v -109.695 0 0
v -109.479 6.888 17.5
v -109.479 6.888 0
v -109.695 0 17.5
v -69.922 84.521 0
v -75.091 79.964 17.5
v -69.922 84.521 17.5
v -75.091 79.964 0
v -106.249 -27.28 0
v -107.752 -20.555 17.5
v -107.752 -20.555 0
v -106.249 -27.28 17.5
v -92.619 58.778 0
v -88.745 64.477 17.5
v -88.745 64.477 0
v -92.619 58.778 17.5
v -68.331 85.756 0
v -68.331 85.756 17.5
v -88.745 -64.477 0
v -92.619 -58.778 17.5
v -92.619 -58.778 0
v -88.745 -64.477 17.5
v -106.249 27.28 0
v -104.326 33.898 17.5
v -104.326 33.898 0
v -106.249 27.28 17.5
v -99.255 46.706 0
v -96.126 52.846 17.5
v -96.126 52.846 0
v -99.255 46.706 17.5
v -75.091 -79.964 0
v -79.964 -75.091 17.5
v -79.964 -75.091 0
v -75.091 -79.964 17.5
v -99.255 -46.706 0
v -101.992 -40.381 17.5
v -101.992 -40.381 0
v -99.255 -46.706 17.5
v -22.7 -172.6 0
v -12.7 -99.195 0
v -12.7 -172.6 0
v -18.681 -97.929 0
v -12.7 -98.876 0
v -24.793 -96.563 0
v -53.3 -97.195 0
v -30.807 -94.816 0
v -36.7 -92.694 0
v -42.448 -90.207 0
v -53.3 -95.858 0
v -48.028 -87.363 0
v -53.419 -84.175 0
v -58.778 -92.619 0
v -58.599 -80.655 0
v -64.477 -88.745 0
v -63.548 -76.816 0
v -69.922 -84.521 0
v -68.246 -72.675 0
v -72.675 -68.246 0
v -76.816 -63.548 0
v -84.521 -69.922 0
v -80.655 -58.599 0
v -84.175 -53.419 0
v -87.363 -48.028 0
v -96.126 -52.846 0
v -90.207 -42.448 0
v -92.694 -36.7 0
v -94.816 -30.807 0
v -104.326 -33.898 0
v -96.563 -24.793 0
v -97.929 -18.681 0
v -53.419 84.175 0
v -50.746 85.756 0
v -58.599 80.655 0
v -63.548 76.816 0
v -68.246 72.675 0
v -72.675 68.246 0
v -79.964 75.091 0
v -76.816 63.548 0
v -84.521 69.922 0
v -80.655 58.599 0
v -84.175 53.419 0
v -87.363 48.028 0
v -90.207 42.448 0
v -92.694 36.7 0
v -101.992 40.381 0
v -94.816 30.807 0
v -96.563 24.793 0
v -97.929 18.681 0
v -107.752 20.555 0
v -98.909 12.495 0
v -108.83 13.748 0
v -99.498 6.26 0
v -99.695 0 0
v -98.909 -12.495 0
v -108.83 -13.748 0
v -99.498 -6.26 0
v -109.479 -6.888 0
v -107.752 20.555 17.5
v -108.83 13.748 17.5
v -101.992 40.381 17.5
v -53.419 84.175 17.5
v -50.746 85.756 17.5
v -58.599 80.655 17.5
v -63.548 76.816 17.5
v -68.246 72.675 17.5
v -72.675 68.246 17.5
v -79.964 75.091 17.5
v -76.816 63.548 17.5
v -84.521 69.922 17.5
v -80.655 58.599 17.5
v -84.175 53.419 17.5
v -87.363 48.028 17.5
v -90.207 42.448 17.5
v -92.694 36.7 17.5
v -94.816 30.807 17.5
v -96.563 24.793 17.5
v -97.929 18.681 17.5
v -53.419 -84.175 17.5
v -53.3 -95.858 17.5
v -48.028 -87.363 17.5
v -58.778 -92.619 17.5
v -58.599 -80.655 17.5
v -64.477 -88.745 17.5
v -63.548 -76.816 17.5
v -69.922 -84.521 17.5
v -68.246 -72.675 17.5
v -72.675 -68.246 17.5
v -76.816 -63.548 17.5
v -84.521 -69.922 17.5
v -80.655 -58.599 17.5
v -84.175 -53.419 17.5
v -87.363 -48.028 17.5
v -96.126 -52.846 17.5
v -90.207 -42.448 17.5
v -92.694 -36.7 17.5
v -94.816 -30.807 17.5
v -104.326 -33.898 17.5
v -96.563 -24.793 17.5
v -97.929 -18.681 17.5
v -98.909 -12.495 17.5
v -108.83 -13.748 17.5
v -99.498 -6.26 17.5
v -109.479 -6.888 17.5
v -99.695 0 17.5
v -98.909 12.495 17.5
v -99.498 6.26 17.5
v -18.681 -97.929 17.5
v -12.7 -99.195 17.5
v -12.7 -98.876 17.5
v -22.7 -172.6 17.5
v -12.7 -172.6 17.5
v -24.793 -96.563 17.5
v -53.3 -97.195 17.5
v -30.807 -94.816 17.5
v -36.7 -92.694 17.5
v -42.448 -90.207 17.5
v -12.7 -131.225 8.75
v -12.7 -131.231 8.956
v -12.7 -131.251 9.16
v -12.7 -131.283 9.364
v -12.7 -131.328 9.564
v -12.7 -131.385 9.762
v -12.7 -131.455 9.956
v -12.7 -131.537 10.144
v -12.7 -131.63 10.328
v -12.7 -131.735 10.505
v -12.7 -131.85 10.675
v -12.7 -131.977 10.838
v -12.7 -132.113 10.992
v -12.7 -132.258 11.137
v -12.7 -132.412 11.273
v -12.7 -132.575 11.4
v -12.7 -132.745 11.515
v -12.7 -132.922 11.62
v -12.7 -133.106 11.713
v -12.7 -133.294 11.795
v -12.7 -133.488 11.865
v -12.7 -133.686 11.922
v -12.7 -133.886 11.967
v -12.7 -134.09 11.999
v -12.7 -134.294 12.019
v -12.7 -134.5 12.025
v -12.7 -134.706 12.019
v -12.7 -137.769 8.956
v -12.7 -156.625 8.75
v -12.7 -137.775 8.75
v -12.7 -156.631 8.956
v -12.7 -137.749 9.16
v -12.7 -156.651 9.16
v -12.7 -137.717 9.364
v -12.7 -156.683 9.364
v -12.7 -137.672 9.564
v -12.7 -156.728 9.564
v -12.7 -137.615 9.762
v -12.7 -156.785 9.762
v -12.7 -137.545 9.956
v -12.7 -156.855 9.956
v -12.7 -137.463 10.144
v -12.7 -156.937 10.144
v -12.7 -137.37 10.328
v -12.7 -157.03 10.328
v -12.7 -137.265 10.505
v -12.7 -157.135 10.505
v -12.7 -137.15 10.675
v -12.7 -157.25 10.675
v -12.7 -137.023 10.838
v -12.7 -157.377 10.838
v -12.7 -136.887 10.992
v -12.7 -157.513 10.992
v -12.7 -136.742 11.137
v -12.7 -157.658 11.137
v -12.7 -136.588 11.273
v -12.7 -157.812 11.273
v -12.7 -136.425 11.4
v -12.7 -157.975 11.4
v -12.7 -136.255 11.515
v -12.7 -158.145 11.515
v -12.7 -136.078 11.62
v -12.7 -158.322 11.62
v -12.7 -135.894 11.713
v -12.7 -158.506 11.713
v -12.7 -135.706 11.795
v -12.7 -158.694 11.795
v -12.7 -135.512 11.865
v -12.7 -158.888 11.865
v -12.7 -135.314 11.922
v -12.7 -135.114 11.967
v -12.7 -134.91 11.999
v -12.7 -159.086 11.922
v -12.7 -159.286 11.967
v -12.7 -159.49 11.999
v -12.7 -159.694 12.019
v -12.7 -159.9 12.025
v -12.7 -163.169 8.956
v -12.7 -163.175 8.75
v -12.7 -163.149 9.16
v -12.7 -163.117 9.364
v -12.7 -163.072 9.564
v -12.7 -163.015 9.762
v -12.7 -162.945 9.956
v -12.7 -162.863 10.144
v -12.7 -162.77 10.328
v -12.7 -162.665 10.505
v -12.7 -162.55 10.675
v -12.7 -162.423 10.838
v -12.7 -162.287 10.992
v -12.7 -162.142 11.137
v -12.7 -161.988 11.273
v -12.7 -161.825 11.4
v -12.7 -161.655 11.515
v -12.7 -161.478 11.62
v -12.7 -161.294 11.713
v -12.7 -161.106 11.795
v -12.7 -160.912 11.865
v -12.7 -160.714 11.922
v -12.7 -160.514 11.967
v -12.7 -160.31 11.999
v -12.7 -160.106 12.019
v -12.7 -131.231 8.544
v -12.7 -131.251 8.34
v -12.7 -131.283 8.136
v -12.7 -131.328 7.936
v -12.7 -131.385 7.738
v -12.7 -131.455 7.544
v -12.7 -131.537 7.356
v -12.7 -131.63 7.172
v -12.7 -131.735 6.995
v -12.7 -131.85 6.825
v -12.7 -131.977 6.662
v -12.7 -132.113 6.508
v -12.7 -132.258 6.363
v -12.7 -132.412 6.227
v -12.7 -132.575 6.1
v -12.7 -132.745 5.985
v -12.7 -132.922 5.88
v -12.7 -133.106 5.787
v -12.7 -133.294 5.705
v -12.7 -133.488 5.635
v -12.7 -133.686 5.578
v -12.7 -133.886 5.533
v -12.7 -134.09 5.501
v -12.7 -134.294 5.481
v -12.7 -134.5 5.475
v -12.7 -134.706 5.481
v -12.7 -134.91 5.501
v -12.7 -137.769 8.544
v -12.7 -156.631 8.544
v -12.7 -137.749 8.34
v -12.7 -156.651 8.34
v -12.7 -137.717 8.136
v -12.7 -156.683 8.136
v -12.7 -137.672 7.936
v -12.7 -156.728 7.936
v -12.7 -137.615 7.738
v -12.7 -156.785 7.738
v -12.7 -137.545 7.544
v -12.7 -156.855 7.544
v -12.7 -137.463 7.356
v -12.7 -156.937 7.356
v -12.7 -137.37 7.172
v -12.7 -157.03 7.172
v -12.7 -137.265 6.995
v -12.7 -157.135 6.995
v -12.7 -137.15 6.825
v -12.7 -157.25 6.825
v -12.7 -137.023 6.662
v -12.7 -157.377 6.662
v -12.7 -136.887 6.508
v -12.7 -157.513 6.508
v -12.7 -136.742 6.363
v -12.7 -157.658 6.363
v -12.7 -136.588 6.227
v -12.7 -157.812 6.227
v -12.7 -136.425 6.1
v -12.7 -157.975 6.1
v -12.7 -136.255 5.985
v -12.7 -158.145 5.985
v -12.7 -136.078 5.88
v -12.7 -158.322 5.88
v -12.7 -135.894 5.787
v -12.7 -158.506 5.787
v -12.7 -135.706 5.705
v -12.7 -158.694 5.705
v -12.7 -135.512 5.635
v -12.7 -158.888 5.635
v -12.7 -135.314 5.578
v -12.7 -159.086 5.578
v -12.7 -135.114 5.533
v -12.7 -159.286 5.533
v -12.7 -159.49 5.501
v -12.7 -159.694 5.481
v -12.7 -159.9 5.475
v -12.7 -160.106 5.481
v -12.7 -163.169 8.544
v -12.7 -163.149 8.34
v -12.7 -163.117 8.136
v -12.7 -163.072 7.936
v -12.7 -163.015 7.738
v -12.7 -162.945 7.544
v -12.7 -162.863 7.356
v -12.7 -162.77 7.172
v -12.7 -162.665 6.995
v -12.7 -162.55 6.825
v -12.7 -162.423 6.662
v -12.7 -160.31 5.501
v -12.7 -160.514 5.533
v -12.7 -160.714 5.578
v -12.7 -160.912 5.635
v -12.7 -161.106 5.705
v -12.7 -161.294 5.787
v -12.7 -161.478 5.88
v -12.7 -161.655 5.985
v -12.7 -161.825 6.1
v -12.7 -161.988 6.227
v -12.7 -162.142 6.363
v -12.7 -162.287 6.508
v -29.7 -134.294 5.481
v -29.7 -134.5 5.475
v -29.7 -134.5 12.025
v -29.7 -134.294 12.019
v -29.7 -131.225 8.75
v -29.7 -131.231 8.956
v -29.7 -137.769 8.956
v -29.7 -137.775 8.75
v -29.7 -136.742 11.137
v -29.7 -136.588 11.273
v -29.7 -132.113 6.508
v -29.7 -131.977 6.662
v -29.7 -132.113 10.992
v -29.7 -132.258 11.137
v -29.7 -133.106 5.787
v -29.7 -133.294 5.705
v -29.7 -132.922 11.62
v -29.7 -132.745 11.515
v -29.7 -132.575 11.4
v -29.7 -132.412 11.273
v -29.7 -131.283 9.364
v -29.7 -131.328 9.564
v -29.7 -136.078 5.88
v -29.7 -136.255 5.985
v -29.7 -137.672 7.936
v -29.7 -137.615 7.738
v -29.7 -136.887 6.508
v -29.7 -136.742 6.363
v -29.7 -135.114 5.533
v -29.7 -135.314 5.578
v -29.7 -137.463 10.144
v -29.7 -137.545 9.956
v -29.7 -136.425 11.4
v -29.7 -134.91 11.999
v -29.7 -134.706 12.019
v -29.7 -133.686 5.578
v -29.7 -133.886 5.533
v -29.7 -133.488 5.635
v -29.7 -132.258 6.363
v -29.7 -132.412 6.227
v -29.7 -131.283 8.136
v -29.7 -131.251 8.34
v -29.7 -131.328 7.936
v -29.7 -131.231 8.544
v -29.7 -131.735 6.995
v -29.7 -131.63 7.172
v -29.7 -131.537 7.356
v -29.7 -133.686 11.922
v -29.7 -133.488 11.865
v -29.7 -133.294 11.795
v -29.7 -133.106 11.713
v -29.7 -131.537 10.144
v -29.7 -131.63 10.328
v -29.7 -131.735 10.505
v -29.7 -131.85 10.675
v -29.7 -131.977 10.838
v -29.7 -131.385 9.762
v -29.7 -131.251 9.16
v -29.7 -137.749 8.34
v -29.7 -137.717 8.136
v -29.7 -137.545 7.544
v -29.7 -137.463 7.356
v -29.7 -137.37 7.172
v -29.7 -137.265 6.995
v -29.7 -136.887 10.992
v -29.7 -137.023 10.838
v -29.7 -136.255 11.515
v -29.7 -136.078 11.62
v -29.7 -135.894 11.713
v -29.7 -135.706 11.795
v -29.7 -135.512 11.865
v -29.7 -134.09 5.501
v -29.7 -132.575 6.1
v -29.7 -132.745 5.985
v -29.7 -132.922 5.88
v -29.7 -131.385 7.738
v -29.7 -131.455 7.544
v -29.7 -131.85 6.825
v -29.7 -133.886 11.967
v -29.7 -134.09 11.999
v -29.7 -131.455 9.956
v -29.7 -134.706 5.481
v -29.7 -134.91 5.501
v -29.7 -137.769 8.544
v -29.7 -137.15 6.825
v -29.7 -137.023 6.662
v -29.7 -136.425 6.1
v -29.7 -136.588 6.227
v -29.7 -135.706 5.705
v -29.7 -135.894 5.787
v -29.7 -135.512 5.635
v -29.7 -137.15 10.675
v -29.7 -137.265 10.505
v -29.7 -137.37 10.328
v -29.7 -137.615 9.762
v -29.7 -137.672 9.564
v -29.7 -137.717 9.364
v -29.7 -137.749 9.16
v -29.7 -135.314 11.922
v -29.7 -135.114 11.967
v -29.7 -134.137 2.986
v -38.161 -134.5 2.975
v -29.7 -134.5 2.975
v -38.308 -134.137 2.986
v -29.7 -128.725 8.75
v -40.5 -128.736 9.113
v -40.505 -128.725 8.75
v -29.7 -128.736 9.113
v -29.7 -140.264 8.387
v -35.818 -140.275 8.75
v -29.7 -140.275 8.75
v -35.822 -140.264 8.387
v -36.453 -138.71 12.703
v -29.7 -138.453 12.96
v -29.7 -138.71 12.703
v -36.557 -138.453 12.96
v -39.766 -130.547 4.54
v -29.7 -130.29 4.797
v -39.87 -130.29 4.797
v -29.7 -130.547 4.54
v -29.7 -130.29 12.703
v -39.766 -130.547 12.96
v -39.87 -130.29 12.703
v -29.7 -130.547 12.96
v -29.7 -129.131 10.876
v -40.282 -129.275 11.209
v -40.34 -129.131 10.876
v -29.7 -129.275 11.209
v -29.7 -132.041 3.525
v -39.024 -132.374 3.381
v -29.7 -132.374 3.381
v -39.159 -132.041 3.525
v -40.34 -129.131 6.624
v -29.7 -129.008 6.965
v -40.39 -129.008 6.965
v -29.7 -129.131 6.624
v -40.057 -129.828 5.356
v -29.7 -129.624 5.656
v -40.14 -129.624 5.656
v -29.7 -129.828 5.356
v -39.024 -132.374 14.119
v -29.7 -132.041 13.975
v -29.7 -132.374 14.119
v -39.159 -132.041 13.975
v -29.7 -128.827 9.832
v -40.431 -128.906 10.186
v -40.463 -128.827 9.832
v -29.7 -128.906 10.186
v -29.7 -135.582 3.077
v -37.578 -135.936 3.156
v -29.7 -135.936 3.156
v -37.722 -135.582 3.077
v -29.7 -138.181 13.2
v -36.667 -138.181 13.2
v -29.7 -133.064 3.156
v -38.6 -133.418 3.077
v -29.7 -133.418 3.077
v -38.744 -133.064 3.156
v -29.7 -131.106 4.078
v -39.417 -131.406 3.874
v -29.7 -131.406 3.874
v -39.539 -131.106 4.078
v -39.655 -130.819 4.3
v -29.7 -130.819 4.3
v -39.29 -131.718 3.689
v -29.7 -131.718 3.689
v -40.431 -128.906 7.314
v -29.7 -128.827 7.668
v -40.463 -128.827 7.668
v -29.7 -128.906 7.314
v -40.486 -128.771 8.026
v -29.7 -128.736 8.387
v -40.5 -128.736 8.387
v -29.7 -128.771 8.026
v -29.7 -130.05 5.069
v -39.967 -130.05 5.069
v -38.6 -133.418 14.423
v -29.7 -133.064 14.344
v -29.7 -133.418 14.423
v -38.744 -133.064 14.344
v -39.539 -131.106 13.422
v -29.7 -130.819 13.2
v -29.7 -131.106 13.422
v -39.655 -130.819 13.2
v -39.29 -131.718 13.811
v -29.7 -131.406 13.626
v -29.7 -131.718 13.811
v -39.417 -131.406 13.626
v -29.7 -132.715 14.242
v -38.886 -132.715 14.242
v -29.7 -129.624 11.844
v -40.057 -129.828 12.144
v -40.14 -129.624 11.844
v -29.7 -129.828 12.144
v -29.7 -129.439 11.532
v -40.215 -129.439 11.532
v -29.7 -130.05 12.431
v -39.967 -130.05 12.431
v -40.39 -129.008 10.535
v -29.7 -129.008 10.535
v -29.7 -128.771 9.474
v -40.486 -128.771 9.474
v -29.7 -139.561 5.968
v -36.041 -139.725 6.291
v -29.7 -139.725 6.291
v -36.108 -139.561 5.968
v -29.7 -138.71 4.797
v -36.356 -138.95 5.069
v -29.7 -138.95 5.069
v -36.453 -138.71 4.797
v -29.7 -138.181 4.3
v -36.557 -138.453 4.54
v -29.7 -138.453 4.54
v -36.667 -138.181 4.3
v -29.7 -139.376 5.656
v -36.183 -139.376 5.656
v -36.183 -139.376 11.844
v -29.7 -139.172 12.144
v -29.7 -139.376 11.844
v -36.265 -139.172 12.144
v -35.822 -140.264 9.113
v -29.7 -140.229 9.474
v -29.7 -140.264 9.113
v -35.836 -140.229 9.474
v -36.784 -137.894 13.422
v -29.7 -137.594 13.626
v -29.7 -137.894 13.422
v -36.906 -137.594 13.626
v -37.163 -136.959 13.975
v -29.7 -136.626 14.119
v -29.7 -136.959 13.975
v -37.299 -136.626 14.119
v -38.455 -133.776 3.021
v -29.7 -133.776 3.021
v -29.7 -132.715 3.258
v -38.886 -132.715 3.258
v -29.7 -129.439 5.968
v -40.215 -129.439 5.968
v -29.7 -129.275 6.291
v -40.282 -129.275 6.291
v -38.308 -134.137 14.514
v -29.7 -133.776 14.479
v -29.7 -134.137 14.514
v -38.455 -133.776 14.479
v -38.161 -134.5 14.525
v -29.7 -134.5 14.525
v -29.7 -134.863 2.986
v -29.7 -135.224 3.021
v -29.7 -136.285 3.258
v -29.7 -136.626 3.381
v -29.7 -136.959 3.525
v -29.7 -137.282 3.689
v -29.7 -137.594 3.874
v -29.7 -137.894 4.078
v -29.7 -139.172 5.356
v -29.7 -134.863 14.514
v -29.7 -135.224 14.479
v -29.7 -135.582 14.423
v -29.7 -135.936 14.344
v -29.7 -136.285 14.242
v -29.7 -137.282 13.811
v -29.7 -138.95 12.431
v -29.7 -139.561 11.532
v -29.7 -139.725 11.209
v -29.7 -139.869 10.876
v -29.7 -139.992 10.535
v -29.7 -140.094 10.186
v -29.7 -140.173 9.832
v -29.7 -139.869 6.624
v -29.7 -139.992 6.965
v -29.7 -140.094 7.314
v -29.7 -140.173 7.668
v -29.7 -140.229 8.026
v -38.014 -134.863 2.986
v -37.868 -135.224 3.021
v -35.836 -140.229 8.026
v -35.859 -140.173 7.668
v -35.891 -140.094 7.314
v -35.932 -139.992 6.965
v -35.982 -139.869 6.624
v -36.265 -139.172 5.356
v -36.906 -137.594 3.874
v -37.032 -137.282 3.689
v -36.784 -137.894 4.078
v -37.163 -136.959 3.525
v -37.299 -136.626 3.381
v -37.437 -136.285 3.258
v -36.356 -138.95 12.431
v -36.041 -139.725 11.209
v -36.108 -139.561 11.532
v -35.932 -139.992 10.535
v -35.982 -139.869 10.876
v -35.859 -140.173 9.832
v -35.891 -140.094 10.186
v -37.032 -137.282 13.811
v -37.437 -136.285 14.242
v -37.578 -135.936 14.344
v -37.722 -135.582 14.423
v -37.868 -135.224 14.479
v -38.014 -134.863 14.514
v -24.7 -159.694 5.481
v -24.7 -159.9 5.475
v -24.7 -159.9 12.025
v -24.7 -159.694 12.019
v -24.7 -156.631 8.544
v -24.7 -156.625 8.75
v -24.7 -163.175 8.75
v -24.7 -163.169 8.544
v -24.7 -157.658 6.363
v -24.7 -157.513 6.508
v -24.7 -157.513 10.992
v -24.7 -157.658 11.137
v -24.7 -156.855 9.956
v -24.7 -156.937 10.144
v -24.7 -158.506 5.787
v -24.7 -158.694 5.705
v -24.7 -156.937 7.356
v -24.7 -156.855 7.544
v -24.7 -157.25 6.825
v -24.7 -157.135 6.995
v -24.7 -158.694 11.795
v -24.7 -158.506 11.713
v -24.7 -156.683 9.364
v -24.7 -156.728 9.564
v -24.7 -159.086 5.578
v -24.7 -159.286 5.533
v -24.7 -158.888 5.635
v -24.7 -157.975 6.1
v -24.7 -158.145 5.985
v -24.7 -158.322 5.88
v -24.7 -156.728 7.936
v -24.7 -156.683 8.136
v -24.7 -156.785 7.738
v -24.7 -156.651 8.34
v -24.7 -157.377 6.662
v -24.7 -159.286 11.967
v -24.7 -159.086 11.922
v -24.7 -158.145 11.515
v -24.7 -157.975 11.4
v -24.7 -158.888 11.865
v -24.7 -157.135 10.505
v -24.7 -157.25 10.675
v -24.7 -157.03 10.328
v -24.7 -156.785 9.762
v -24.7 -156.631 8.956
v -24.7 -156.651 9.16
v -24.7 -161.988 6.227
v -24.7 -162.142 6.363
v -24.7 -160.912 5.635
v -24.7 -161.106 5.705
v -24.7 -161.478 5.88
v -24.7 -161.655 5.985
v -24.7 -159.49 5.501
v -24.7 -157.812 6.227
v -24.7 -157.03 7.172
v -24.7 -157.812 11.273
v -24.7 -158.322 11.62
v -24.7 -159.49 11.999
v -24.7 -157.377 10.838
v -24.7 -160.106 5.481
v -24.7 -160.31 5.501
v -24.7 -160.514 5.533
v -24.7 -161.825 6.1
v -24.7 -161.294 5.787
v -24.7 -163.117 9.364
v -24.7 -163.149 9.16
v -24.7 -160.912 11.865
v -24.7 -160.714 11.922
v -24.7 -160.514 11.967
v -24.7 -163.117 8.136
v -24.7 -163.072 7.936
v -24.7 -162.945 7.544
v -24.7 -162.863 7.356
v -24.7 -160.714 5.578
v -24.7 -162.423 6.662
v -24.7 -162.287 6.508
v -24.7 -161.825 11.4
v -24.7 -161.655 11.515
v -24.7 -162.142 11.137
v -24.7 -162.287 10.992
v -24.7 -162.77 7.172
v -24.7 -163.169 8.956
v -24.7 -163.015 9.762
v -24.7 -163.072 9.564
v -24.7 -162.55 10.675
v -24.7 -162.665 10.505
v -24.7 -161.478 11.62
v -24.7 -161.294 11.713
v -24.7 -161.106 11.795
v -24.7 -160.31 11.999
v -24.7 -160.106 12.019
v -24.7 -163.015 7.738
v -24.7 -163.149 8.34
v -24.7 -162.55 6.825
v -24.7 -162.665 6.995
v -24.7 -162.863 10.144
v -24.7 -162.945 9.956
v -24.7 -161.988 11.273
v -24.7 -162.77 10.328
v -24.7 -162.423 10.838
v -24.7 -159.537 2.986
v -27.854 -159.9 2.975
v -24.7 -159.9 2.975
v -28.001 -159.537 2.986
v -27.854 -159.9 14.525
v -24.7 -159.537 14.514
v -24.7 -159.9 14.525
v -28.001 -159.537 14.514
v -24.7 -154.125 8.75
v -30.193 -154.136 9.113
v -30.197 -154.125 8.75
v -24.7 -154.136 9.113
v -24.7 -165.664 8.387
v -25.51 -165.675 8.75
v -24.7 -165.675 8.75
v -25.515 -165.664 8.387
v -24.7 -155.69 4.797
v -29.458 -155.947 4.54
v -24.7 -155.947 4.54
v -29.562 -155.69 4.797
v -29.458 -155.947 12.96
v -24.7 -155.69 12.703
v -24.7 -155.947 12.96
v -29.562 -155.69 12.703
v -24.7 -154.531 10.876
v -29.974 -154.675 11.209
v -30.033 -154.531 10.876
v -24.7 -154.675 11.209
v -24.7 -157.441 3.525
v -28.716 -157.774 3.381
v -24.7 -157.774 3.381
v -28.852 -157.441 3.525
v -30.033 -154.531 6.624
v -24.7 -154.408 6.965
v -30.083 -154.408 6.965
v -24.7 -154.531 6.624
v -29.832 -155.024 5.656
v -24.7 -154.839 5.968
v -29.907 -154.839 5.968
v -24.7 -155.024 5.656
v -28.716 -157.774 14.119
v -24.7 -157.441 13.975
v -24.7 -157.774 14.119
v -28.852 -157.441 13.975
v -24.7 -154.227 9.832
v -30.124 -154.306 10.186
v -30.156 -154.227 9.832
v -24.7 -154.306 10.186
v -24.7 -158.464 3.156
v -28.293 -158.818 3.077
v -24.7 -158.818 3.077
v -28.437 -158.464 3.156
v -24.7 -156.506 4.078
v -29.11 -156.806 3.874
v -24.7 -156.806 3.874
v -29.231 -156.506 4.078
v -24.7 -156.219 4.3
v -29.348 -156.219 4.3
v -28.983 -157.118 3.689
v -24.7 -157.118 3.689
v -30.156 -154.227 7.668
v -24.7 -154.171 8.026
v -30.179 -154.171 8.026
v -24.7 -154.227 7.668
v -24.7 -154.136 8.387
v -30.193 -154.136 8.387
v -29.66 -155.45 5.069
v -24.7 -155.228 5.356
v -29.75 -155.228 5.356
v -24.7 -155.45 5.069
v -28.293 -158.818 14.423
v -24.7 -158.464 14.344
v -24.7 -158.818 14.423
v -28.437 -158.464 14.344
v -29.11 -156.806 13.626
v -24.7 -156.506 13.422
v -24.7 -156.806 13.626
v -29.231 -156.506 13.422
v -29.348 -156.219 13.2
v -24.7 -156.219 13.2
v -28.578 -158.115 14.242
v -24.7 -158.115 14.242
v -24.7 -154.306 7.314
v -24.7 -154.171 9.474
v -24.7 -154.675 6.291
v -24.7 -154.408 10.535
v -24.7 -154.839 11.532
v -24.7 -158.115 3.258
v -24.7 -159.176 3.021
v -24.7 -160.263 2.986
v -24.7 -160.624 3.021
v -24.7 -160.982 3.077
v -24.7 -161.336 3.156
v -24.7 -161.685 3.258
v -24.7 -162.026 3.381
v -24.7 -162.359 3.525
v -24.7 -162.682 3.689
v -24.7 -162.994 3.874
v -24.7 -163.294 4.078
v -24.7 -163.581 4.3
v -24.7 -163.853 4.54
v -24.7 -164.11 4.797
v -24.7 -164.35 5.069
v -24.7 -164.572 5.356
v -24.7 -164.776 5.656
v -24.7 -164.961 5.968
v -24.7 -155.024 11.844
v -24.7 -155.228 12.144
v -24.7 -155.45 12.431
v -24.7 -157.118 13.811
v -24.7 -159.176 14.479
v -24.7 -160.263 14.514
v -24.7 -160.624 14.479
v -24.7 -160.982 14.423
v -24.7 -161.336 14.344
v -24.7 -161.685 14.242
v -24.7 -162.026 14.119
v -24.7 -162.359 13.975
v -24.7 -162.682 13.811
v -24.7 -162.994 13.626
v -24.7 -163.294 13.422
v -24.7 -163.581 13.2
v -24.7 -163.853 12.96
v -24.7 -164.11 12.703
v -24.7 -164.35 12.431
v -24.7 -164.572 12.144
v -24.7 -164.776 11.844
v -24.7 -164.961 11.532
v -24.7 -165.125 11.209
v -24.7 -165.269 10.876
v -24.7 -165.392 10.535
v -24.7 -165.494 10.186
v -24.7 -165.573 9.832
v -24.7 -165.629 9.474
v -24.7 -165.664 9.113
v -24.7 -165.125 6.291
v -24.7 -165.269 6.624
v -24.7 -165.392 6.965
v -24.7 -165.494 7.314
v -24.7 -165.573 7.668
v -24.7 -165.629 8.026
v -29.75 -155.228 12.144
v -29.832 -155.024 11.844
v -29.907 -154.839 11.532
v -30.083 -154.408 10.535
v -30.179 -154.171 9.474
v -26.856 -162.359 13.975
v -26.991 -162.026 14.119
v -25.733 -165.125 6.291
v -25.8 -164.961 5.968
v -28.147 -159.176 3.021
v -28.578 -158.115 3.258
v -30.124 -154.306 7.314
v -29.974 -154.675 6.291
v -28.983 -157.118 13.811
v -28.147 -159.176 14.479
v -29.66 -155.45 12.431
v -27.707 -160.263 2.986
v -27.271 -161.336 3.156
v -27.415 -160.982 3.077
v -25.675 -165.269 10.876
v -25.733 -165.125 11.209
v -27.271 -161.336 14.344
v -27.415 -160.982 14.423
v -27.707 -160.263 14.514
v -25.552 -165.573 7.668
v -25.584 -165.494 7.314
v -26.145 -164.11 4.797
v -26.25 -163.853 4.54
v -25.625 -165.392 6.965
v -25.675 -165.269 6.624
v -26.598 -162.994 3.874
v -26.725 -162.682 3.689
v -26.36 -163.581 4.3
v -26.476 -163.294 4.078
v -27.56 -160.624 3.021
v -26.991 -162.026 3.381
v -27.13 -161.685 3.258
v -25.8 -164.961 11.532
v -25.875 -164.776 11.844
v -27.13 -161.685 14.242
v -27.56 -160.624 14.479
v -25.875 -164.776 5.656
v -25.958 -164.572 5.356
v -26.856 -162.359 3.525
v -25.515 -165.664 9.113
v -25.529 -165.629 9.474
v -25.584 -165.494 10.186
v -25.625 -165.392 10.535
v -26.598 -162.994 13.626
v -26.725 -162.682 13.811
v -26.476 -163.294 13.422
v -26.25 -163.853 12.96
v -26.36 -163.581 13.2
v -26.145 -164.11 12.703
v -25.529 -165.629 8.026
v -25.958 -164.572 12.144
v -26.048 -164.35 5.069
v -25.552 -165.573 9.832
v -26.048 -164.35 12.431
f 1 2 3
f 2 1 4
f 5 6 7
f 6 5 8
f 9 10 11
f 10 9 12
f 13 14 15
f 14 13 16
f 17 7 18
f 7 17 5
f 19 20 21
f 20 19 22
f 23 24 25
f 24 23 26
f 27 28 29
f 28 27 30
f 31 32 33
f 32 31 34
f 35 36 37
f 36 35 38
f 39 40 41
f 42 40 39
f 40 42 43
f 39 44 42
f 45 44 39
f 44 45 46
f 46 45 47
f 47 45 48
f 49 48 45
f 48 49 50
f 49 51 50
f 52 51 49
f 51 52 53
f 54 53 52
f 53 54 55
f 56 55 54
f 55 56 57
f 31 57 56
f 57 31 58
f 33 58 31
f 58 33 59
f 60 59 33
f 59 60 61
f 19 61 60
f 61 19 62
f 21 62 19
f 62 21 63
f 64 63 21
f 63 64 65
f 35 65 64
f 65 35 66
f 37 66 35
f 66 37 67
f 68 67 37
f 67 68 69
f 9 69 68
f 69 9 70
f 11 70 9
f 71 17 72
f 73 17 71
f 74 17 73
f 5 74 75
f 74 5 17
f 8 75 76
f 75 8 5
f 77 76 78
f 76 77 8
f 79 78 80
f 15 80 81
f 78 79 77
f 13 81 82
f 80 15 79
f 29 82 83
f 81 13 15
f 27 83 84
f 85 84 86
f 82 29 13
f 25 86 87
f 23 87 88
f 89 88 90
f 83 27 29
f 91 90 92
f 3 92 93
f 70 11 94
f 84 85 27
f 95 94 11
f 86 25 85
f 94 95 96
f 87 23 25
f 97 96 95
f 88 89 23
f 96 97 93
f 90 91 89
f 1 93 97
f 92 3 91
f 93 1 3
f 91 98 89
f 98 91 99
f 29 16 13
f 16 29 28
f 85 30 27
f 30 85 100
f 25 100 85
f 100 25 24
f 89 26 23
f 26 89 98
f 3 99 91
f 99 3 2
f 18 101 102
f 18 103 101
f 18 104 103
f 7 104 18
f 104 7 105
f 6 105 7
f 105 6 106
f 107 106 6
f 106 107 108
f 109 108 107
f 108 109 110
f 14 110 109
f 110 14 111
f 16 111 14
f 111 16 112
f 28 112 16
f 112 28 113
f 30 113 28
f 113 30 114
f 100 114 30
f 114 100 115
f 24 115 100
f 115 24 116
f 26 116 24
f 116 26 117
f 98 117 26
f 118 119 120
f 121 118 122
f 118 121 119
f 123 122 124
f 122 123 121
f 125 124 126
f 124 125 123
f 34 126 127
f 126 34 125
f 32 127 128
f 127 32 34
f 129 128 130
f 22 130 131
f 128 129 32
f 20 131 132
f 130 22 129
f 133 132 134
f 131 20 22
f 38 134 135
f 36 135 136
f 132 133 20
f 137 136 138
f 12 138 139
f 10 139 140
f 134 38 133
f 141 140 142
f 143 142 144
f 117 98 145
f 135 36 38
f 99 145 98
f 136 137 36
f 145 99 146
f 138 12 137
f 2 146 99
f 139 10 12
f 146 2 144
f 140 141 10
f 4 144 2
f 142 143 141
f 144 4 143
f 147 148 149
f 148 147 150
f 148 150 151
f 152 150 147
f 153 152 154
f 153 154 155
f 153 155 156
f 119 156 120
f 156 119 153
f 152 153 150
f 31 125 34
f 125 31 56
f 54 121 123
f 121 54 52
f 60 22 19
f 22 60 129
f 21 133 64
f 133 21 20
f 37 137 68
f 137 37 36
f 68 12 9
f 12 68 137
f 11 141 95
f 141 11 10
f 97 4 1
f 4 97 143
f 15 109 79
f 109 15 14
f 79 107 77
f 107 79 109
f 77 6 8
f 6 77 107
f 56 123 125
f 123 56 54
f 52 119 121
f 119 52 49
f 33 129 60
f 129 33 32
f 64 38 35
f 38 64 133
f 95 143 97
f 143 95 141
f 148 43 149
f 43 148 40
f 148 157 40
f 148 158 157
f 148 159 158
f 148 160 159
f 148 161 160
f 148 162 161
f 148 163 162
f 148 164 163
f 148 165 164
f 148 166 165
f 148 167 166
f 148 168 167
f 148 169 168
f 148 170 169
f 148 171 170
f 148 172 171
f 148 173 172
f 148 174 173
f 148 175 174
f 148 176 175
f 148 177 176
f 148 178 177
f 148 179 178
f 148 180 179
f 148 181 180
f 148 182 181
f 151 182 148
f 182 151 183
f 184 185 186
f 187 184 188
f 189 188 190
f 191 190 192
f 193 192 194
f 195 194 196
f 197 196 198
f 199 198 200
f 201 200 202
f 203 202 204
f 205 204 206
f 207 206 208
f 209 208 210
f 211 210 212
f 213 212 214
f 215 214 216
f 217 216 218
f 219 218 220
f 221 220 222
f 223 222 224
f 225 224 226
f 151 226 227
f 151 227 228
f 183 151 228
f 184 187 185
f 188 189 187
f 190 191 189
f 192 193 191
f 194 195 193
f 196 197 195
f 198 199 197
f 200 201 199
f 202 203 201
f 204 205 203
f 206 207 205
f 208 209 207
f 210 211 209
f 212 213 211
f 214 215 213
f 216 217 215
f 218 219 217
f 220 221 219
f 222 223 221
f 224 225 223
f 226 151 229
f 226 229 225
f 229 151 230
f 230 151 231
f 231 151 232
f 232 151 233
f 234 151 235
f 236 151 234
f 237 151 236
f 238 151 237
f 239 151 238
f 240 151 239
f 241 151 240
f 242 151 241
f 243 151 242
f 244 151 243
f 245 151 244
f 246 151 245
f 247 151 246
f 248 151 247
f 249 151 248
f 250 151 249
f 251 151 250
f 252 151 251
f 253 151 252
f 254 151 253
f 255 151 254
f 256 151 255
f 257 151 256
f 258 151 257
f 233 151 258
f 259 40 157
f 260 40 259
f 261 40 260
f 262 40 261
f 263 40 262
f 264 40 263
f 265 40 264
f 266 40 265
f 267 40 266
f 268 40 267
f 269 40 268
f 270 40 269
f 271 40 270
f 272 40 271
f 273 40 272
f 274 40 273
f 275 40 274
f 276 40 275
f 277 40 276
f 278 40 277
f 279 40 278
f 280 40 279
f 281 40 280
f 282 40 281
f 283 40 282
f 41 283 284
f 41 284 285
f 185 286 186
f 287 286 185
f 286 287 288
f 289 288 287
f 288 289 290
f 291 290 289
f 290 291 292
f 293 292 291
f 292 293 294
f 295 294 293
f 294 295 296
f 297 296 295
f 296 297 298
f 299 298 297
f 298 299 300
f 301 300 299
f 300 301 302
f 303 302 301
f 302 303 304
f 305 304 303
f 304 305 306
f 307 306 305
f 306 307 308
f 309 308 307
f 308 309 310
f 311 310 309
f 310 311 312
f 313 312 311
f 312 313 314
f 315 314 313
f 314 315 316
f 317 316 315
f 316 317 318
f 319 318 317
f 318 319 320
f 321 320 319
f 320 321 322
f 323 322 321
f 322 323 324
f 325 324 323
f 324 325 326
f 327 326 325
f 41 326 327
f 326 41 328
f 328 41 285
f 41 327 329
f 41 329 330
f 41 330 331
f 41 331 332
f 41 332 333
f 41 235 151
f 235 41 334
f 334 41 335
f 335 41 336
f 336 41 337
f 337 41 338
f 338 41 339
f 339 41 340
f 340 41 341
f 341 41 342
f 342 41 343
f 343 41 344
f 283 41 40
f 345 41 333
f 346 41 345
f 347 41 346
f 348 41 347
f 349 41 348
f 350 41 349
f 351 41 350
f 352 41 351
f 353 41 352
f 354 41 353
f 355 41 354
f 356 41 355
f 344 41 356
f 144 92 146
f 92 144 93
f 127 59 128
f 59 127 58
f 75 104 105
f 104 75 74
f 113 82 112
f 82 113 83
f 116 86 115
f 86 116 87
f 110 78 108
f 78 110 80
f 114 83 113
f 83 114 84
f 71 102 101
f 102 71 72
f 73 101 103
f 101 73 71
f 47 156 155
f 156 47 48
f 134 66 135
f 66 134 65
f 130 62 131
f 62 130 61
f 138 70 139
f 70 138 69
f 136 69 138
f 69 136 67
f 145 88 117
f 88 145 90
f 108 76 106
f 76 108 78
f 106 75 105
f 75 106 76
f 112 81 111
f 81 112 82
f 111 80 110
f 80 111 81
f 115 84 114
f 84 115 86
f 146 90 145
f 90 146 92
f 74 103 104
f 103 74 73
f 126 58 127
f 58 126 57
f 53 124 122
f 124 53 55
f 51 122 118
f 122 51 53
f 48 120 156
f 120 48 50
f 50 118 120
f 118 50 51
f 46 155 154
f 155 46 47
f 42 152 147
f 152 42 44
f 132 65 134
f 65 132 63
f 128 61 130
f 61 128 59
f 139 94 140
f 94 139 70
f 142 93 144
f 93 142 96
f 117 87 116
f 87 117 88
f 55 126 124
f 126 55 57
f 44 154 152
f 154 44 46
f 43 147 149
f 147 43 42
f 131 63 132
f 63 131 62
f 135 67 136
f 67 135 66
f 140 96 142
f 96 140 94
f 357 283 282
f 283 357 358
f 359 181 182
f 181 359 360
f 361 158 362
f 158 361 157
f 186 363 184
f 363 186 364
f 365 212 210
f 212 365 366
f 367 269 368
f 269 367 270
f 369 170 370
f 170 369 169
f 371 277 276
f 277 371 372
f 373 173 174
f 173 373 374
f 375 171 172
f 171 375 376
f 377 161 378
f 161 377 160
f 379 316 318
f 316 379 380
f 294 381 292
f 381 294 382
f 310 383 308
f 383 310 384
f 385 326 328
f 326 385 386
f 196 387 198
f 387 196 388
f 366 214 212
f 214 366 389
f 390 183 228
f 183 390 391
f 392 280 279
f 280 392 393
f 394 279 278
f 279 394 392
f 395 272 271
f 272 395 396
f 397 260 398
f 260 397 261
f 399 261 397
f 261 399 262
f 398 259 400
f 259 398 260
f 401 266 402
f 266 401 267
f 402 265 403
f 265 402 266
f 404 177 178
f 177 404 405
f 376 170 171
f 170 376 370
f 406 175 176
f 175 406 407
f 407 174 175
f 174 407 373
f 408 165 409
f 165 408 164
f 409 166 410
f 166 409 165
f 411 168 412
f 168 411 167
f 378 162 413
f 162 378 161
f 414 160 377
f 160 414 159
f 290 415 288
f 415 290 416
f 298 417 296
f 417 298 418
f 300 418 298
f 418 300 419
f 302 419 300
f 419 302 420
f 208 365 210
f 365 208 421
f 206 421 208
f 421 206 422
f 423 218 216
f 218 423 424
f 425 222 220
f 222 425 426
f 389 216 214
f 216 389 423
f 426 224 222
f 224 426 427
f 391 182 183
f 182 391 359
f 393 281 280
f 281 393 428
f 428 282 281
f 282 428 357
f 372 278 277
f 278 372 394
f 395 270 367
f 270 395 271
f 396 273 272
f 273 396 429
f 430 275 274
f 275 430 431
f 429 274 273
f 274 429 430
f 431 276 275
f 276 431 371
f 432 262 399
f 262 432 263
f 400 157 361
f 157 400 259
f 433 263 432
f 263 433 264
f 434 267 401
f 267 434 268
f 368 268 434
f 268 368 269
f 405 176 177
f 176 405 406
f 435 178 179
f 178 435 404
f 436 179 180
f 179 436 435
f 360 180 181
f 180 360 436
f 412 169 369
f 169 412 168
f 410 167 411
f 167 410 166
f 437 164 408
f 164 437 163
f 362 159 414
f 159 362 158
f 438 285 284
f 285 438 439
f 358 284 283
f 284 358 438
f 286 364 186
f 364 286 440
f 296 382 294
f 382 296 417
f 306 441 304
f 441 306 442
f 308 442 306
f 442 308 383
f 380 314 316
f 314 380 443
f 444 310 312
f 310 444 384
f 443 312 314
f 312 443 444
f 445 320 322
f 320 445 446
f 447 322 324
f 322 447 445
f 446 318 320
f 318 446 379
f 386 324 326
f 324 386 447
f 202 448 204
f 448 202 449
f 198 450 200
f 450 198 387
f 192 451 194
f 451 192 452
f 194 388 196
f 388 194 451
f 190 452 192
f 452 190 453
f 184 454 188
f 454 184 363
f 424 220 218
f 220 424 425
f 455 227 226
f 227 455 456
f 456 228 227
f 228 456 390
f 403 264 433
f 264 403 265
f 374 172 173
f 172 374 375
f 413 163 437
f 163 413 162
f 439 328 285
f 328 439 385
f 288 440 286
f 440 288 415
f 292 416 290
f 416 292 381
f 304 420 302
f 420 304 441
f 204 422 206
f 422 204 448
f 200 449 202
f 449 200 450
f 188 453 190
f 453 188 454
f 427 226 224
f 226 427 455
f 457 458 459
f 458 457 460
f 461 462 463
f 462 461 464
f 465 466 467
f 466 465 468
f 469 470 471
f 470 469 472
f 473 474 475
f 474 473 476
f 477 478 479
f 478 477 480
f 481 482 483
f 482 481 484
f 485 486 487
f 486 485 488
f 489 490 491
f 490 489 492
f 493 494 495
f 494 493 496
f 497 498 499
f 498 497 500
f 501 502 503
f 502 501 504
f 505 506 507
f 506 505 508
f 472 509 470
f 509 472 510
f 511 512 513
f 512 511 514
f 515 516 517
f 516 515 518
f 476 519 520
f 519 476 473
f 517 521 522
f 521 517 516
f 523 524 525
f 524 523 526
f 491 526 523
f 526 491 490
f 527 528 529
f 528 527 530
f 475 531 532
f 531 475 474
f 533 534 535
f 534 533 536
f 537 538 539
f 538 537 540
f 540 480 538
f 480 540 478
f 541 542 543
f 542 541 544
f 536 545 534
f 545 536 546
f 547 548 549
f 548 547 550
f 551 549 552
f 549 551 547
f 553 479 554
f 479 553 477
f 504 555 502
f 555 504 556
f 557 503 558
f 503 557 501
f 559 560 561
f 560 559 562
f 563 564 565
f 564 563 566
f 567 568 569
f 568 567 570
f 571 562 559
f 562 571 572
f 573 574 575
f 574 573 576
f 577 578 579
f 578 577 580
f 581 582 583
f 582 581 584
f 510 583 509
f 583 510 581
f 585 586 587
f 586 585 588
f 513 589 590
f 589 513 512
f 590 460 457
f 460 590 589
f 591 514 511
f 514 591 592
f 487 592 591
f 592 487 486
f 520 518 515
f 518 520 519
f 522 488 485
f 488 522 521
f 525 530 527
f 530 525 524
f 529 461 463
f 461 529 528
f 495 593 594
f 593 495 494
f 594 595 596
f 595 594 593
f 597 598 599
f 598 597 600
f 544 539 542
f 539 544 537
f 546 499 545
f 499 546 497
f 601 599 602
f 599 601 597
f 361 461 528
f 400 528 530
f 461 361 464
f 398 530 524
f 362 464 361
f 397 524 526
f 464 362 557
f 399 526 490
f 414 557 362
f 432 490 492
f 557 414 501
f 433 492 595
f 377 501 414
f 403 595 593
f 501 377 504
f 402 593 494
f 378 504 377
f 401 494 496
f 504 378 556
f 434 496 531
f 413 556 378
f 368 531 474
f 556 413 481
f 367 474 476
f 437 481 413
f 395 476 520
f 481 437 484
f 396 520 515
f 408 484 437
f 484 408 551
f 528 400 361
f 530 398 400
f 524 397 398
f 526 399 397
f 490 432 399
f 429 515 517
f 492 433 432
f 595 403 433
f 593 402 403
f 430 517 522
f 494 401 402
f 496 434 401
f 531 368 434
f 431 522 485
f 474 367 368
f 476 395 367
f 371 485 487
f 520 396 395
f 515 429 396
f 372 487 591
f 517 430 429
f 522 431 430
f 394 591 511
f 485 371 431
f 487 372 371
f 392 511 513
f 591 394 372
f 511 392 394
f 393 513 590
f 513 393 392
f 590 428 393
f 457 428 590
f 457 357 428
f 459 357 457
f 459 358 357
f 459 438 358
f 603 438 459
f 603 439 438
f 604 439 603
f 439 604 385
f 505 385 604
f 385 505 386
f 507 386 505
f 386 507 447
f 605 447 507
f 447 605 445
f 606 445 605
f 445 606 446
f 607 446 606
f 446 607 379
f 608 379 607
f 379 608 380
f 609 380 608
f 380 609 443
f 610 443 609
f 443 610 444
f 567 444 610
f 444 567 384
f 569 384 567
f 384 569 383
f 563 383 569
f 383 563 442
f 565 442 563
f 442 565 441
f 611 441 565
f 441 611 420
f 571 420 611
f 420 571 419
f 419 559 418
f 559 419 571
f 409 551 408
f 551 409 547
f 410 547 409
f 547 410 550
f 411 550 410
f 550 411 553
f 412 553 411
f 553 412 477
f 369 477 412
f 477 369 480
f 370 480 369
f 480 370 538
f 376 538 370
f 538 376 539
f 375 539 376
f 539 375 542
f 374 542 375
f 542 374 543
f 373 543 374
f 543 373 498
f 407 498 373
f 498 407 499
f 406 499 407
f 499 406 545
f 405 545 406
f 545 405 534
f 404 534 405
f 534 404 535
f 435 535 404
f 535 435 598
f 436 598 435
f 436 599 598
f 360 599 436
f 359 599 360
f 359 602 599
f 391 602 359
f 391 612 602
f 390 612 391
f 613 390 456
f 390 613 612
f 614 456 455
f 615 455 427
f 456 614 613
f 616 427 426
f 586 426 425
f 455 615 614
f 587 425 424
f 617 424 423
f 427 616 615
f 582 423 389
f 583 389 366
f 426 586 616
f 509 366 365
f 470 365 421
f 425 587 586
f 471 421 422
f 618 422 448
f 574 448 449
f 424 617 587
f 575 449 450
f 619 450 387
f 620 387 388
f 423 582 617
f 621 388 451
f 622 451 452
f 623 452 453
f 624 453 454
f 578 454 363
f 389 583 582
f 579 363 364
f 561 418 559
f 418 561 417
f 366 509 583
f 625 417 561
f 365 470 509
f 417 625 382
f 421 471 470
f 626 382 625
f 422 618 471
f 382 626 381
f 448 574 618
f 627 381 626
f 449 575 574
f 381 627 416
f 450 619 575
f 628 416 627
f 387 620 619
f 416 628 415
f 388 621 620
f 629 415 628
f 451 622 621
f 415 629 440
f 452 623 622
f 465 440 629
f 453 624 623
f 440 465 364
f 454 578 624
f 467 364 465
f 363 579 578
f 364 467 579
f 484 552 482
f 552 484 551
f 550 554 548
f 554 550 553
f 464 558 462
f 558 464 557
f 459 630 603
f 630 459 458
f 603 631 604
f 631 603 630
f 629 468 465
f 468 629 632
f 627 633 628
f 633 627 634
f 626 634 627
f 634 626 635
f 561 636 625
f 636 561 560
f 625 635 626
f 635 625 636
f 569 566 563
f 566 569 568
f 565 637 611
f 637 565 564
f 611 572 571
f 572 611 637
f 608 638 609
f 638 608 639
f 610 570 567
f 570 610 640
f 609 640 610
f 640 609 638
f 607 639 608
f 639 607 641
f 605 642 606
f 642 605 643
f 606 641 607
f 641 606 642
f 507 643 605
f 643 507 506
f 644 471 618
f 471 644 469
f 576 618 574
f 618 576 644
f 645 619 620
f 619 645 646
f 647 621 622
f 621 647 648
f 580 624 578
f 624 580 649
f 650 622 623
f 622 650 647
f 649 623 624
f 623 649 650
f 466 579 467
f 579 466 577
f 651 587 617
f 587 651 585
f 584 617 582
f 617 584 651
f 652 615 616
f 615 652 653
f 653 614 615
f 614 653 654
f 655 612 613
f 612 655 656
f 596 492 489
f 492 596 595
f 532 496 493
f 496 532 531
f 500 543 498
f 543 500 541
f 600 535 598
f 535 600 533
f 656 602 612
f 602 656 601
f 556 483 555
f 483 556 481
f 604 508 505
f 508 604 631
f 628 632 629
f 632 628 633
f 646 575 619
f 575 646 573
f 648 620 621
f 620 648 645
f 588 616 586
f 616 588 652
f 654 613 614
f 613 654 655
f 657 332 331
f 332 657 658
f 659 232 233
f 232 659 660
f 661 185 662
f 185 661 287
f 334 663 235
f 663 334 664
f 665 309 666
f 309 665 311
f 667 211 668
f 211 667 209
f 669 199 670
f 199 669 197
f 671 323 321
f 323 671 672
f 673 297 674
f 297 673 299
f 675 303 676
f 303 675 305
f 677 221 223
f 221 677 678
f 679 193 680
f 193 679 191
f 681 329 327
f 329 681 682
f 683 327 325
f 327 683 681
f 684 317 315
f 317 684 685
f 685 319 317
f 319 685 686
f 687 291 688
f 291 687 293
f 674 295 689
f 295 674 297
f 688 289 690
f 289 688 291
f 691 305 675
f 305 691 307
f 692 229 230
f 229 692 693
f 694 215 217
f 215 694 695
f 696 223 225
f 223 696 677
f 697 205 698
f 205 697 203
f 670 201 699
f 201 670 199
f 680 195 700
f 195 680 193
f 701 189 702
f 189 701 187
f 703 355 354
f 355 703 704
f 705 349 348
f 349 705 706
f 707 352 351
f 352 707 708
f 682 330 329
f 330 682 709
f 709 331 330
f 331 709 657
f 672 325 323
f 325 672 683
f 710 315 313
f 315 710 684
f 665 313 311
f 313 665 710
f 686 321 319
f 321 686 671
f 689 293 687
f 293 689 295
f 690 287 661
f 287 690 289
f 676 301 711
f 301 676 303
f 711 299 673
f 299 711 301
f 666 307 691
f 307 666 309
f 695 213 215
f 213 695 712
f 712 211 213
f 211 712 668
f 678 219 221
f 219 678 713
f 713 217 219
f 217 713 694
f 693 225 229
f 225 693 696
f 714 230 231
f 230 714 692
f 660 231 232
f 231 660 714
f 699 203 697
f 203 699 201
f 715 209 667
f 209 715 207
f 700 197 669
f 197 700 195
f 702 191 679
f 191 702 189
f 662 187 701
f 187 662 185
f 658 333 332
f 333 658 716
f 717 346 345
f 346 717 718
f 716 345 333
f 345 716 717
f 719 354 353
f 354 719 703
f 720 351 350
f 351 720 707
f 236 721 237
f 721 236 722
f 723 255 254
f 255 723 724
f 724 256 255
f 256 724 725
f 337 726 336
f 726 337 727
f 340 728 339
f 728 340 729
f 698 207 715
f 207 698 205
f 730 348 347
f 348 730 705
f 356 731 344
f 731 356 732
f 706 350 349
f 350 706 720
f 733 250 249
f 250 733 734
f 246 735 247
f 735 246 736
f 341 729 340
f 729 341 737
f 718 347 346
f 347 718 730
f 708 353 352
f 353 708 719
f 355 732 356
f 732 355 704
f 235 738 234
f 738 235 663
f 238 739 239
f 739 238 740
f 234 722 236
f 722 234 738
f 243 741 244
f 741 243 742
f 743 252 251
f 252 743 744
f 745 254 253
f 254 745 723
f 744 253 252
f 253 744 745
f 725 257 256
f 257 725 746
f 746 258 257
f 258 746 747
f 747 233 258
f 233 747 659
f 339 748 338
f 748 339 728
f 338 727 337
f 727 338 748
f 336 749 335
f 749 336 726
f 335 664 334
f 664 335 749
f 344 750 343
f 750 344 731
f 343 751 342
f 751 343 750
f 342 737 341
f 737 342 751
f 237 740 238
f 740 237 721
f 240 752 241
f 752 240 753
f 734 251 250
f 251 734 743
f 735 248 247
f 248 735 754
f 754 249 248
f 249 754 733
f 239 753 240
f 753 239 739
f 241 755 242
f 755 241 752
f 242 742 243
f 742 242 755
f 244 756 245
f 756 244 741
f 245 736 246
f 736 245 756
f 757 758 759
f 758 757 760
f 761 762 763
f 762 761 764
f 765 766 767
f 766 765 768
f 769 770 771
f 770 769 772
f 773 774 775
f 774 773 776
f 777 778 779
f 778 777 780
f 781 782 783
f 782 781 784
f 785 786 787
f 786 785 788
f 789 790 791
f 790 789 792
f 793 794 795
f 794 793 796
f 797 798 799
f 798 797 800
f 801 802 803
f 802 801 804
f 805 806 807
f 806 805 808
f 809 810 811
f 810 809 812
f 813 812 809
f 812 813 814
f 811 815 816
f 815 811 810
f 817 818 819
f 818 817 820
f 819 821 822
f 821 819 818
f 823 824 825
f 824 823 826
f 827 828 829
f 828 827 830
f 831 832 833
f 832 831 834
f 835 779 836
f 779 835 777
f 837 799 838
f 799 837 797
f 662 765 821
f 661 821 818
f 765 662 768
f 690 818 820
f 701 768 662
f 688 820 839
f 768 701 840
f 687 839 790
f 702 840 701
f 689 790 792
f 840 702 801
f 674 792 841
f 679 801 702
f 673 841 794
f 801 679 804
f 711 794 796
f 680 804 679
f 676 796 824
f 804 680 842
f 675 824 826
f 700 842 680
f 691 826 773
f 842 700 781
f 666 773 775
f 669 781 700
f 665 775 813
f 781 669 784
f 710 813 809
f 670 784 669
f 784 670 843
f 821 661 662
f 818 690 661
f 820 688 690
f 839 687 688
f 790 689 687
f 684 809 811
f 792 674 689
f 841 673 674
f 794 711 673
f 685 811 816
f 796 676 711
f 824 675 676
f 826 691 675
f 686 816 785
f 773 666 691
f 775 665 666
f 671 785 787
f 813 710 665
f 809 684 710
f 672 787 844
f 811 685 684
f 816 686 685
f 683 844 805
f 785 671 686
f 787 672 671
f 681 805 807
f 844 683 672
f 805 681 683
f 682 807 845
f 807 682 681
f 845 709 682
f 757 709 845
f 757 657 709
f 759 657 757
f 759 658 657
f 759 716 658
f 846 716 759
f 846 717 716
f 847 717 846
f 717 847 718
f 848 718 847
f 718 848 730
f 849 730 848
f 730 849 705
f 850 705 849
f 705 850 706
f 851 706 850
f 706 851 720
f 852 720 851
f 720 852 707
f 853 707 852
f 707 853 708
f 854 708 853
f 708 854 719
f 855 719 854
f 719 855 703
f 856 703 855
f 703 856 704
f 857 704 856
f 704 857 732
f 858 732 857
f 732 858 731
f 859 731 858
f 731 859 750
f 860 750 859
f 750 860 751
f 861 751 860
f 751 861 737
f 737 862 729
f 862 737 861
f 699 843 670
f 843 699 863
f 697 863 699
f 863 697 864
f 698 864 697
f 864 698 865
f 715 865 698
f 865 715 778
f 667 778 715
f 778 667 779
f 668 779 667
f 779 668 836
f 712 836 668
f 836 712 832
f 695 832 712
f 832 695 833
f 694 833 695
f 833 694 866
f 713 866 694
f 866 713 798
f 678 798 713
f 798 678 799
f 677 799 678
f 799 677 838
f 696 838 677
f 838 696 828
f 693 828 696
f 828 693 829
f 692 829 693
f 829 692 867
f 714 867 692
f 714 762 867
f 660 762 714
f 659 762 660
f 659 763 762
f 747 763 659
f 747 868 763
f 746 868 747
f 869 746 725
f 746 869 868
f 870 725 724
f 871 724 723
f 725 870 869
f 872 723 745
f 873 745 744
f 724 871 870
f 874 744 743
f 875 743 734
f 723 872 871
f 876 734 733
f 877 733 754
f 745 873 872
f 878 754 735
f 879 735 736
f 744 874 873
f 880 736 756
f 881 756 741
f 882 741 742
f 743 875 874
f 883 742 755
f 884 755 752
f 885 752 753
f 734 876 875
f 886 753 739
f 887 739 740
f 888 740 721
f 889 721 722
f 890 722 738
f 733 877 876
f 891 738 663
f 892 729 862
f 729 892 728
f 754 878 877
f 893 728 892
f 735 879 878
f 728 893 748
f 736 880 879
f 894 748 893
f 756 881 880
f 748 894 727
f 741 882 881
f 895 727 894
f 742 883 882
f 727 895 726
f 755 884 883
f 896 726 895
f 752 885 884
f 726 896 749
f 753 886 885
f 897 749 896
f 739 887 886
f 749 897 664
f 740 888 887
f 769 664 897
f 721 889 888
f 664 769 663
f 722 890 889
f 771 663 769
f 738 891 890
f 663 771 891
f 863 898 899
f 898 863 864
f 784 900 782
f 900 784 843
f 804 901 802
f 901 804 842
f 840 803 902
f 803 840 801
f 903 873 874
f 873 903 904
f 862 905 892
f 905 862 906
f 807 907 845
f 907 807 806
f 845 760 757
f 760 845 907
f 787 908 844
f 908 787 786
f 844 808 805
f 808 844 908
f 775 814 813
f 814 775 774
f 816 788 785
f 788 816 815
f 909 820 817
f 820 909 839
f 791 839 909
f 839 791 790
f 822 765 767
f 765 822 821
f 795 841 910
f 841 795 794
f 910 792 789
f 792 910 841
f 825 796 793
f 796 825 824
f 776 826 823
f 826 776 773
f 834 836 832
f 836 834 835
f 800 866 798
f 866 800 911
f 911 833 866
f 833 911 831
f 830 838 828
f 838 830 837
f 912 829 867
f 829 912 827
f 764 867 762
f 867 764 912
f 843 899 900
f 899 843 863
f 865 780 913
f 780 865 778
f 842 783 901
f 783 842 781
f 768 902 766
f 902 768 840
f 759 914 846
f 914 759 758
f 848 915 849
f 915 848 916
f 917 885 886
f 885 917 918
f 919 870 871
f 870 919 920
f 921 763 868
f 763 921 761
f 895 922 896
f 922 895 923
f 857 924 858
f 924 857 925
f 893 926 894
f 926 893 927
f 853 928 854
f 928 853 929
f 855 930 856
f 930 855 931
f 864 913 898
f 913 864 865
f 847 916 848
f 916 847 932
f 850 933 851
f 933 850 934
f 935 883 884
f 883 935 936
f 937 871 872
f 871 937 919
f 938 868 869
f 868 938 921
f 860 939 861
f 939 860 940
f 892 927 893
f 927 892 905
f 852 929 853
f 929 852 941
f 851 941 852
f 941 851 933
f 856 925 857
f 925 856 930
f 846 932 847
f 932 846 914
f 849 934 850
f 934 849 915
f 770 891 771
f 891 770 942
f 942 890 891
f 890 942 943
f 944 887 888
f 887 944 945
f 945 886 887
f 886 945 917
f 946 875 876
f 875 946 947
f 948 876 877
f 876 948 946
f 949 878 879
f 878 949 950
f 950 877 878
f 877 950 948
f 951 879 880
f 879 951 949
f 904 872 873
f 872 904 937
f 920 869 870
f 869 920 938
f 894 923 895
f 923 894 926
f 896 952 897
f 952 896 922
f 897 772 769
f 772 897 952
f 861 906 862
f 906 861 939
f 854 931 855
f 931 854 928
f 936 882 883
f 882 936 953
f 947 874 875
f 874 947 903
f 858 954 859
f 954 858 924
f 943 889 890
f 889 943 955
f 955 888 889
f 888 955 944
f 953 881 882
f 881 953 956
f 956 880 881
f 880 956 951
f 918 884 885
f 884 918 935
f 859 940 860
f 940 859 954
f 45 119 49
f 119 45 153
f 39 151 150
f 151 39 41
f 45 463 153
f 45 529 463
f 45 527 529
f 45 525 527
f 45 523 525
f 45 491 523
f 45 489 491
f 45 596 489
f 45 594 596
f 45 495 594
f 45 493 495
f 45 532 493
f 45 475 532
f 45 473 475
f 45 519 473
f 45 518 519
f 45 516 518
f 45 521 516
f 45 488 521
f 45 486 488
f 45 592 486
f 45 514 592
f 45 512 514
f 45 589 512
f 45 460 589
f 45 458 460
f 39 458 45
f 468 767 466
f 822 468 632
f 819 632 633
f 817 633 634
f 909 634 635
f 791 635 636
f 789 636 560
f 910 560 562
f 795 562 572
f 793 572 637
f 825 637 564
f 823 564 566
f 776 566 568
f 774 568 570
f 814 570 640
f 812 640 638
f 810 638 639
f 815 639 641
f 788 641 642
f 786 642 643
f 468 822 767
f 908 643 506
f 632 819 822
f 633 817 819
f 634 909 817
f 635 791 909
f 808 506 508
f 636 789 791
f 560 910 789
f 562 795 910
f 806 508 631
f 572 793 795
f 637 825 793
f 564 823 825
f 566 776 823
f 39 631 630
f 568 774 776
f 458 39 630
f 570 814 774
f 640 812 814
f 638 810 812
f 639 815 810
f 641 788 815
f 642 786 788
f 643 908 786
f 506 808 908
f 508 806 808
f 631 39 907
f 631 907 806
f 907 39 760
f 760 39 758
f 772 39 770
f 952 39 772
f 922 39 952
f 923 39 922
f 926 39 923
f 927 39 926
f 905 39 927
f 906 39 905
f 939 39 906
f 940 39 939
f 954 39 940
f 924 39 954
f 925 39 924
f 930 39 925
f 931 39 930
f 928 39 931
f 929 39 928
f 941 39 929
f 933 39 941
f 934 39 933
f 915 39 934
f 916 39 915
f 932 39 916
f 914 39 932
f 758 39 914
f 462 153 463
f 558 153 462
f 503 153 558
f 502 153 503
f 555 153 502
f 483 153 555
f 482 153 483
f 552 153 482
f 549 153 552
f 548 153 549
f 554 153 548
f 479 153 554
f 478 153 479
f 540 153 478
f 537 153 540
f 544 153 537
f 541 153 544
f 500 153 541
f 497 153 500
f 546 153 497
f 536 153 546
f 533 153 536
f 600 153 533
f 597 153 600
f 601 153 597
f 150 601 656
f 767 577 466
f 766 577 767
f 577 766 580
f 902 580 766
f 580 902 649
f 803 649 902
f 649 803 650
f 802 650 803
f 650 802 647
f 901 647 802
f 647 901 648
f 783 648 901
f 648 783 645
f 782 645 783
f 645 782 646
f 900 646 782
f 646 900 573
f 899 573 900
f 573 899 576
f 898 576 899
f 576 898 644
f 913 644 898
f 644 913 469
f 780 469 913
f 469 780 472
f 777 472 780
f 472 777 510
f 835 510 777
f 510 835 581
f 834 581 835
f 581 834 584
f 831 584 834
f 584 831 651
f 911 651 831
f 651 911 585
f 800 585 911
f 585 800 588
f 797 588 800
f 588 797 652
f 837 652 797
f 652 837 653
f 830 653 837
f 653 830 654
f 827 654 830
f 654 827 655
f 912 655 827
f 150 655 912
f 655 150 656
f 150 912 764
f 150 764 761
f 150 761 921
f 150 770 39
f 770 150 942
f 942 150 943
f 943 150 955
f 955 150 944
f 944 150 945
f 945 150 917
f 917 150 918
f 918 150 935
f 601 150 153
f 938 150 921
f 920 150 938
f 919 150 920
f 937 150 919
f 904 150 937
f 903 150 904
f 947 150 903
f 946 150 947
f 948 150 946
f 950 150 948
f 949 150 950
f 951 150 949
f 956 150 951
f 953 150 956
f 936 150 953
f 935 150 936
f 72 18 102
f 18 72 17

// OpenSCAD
$fn=100;

in=25.4;
thickness=20;
OD=7.85*in;
OOD=OD+15;

to_bar=(4.5*in)-OD/2;
echo(to_bar);


h=17.5;


block=in*3;
bolt=in/4+.2;

module post_tie(){
        difference(){
    hull(){

        translate([-in,-OOD/2-to_bar/2+4,h/2])
            cube([in,to_bar+8,h],center=true);
        translate([-in*2,-OOD/2+12.5,h/2])
            cube([5,5,h],center=true);
        translate([-in,-OOD/2-to_bar/2+4,h/2])
            translate([in/2-5,-(to_bar+8+2*in)/2,0])
                cube([10,2*in,h],center=true);
    }
    
    // bolt holes
    for(i=[0:1]){
        translate([-in,-OOD/2-to_bar/2+4,h/2])
            translate([in/2-5,-(to_bar+8+2*in)/2,0])
                rotate([0,90,0]){
                    translate([0,in/2-i*in,-h])
                        cylinder(100,d=bolt);
                    translate([0,in/2-i*in,-27+5*i])
                    cylinder(15,d=bolt+5);
                }

                        
    }
}
}



module cantilever(extra=true) {
    
    
    difference(){
        
    cylinder(h,d=OD+thickness);

        cube([in,1000,h*3],center=true);
    translate([0,0,-h])
     cylinder(h*3,d=OD);
        
        translate([0,-150,-1])
        cube([300,300,100]);
    }
    for(i=[0:1]){
        rotate([180*i,0,0])
        translate([0,0,-h*2*i])

    for(j=[0:1]){
        if(extra) {
    translate([0,0,h*j])
            post_tie();
        }
        else {
            post_tie();
        }
        
            

}
}   
        

}

difference(){

    
cantilever(false);
    translate([0,OOD+OOD/2.5,0])
cube([OOD*2,OOD*2,OOD*2],center=true);
    
}
